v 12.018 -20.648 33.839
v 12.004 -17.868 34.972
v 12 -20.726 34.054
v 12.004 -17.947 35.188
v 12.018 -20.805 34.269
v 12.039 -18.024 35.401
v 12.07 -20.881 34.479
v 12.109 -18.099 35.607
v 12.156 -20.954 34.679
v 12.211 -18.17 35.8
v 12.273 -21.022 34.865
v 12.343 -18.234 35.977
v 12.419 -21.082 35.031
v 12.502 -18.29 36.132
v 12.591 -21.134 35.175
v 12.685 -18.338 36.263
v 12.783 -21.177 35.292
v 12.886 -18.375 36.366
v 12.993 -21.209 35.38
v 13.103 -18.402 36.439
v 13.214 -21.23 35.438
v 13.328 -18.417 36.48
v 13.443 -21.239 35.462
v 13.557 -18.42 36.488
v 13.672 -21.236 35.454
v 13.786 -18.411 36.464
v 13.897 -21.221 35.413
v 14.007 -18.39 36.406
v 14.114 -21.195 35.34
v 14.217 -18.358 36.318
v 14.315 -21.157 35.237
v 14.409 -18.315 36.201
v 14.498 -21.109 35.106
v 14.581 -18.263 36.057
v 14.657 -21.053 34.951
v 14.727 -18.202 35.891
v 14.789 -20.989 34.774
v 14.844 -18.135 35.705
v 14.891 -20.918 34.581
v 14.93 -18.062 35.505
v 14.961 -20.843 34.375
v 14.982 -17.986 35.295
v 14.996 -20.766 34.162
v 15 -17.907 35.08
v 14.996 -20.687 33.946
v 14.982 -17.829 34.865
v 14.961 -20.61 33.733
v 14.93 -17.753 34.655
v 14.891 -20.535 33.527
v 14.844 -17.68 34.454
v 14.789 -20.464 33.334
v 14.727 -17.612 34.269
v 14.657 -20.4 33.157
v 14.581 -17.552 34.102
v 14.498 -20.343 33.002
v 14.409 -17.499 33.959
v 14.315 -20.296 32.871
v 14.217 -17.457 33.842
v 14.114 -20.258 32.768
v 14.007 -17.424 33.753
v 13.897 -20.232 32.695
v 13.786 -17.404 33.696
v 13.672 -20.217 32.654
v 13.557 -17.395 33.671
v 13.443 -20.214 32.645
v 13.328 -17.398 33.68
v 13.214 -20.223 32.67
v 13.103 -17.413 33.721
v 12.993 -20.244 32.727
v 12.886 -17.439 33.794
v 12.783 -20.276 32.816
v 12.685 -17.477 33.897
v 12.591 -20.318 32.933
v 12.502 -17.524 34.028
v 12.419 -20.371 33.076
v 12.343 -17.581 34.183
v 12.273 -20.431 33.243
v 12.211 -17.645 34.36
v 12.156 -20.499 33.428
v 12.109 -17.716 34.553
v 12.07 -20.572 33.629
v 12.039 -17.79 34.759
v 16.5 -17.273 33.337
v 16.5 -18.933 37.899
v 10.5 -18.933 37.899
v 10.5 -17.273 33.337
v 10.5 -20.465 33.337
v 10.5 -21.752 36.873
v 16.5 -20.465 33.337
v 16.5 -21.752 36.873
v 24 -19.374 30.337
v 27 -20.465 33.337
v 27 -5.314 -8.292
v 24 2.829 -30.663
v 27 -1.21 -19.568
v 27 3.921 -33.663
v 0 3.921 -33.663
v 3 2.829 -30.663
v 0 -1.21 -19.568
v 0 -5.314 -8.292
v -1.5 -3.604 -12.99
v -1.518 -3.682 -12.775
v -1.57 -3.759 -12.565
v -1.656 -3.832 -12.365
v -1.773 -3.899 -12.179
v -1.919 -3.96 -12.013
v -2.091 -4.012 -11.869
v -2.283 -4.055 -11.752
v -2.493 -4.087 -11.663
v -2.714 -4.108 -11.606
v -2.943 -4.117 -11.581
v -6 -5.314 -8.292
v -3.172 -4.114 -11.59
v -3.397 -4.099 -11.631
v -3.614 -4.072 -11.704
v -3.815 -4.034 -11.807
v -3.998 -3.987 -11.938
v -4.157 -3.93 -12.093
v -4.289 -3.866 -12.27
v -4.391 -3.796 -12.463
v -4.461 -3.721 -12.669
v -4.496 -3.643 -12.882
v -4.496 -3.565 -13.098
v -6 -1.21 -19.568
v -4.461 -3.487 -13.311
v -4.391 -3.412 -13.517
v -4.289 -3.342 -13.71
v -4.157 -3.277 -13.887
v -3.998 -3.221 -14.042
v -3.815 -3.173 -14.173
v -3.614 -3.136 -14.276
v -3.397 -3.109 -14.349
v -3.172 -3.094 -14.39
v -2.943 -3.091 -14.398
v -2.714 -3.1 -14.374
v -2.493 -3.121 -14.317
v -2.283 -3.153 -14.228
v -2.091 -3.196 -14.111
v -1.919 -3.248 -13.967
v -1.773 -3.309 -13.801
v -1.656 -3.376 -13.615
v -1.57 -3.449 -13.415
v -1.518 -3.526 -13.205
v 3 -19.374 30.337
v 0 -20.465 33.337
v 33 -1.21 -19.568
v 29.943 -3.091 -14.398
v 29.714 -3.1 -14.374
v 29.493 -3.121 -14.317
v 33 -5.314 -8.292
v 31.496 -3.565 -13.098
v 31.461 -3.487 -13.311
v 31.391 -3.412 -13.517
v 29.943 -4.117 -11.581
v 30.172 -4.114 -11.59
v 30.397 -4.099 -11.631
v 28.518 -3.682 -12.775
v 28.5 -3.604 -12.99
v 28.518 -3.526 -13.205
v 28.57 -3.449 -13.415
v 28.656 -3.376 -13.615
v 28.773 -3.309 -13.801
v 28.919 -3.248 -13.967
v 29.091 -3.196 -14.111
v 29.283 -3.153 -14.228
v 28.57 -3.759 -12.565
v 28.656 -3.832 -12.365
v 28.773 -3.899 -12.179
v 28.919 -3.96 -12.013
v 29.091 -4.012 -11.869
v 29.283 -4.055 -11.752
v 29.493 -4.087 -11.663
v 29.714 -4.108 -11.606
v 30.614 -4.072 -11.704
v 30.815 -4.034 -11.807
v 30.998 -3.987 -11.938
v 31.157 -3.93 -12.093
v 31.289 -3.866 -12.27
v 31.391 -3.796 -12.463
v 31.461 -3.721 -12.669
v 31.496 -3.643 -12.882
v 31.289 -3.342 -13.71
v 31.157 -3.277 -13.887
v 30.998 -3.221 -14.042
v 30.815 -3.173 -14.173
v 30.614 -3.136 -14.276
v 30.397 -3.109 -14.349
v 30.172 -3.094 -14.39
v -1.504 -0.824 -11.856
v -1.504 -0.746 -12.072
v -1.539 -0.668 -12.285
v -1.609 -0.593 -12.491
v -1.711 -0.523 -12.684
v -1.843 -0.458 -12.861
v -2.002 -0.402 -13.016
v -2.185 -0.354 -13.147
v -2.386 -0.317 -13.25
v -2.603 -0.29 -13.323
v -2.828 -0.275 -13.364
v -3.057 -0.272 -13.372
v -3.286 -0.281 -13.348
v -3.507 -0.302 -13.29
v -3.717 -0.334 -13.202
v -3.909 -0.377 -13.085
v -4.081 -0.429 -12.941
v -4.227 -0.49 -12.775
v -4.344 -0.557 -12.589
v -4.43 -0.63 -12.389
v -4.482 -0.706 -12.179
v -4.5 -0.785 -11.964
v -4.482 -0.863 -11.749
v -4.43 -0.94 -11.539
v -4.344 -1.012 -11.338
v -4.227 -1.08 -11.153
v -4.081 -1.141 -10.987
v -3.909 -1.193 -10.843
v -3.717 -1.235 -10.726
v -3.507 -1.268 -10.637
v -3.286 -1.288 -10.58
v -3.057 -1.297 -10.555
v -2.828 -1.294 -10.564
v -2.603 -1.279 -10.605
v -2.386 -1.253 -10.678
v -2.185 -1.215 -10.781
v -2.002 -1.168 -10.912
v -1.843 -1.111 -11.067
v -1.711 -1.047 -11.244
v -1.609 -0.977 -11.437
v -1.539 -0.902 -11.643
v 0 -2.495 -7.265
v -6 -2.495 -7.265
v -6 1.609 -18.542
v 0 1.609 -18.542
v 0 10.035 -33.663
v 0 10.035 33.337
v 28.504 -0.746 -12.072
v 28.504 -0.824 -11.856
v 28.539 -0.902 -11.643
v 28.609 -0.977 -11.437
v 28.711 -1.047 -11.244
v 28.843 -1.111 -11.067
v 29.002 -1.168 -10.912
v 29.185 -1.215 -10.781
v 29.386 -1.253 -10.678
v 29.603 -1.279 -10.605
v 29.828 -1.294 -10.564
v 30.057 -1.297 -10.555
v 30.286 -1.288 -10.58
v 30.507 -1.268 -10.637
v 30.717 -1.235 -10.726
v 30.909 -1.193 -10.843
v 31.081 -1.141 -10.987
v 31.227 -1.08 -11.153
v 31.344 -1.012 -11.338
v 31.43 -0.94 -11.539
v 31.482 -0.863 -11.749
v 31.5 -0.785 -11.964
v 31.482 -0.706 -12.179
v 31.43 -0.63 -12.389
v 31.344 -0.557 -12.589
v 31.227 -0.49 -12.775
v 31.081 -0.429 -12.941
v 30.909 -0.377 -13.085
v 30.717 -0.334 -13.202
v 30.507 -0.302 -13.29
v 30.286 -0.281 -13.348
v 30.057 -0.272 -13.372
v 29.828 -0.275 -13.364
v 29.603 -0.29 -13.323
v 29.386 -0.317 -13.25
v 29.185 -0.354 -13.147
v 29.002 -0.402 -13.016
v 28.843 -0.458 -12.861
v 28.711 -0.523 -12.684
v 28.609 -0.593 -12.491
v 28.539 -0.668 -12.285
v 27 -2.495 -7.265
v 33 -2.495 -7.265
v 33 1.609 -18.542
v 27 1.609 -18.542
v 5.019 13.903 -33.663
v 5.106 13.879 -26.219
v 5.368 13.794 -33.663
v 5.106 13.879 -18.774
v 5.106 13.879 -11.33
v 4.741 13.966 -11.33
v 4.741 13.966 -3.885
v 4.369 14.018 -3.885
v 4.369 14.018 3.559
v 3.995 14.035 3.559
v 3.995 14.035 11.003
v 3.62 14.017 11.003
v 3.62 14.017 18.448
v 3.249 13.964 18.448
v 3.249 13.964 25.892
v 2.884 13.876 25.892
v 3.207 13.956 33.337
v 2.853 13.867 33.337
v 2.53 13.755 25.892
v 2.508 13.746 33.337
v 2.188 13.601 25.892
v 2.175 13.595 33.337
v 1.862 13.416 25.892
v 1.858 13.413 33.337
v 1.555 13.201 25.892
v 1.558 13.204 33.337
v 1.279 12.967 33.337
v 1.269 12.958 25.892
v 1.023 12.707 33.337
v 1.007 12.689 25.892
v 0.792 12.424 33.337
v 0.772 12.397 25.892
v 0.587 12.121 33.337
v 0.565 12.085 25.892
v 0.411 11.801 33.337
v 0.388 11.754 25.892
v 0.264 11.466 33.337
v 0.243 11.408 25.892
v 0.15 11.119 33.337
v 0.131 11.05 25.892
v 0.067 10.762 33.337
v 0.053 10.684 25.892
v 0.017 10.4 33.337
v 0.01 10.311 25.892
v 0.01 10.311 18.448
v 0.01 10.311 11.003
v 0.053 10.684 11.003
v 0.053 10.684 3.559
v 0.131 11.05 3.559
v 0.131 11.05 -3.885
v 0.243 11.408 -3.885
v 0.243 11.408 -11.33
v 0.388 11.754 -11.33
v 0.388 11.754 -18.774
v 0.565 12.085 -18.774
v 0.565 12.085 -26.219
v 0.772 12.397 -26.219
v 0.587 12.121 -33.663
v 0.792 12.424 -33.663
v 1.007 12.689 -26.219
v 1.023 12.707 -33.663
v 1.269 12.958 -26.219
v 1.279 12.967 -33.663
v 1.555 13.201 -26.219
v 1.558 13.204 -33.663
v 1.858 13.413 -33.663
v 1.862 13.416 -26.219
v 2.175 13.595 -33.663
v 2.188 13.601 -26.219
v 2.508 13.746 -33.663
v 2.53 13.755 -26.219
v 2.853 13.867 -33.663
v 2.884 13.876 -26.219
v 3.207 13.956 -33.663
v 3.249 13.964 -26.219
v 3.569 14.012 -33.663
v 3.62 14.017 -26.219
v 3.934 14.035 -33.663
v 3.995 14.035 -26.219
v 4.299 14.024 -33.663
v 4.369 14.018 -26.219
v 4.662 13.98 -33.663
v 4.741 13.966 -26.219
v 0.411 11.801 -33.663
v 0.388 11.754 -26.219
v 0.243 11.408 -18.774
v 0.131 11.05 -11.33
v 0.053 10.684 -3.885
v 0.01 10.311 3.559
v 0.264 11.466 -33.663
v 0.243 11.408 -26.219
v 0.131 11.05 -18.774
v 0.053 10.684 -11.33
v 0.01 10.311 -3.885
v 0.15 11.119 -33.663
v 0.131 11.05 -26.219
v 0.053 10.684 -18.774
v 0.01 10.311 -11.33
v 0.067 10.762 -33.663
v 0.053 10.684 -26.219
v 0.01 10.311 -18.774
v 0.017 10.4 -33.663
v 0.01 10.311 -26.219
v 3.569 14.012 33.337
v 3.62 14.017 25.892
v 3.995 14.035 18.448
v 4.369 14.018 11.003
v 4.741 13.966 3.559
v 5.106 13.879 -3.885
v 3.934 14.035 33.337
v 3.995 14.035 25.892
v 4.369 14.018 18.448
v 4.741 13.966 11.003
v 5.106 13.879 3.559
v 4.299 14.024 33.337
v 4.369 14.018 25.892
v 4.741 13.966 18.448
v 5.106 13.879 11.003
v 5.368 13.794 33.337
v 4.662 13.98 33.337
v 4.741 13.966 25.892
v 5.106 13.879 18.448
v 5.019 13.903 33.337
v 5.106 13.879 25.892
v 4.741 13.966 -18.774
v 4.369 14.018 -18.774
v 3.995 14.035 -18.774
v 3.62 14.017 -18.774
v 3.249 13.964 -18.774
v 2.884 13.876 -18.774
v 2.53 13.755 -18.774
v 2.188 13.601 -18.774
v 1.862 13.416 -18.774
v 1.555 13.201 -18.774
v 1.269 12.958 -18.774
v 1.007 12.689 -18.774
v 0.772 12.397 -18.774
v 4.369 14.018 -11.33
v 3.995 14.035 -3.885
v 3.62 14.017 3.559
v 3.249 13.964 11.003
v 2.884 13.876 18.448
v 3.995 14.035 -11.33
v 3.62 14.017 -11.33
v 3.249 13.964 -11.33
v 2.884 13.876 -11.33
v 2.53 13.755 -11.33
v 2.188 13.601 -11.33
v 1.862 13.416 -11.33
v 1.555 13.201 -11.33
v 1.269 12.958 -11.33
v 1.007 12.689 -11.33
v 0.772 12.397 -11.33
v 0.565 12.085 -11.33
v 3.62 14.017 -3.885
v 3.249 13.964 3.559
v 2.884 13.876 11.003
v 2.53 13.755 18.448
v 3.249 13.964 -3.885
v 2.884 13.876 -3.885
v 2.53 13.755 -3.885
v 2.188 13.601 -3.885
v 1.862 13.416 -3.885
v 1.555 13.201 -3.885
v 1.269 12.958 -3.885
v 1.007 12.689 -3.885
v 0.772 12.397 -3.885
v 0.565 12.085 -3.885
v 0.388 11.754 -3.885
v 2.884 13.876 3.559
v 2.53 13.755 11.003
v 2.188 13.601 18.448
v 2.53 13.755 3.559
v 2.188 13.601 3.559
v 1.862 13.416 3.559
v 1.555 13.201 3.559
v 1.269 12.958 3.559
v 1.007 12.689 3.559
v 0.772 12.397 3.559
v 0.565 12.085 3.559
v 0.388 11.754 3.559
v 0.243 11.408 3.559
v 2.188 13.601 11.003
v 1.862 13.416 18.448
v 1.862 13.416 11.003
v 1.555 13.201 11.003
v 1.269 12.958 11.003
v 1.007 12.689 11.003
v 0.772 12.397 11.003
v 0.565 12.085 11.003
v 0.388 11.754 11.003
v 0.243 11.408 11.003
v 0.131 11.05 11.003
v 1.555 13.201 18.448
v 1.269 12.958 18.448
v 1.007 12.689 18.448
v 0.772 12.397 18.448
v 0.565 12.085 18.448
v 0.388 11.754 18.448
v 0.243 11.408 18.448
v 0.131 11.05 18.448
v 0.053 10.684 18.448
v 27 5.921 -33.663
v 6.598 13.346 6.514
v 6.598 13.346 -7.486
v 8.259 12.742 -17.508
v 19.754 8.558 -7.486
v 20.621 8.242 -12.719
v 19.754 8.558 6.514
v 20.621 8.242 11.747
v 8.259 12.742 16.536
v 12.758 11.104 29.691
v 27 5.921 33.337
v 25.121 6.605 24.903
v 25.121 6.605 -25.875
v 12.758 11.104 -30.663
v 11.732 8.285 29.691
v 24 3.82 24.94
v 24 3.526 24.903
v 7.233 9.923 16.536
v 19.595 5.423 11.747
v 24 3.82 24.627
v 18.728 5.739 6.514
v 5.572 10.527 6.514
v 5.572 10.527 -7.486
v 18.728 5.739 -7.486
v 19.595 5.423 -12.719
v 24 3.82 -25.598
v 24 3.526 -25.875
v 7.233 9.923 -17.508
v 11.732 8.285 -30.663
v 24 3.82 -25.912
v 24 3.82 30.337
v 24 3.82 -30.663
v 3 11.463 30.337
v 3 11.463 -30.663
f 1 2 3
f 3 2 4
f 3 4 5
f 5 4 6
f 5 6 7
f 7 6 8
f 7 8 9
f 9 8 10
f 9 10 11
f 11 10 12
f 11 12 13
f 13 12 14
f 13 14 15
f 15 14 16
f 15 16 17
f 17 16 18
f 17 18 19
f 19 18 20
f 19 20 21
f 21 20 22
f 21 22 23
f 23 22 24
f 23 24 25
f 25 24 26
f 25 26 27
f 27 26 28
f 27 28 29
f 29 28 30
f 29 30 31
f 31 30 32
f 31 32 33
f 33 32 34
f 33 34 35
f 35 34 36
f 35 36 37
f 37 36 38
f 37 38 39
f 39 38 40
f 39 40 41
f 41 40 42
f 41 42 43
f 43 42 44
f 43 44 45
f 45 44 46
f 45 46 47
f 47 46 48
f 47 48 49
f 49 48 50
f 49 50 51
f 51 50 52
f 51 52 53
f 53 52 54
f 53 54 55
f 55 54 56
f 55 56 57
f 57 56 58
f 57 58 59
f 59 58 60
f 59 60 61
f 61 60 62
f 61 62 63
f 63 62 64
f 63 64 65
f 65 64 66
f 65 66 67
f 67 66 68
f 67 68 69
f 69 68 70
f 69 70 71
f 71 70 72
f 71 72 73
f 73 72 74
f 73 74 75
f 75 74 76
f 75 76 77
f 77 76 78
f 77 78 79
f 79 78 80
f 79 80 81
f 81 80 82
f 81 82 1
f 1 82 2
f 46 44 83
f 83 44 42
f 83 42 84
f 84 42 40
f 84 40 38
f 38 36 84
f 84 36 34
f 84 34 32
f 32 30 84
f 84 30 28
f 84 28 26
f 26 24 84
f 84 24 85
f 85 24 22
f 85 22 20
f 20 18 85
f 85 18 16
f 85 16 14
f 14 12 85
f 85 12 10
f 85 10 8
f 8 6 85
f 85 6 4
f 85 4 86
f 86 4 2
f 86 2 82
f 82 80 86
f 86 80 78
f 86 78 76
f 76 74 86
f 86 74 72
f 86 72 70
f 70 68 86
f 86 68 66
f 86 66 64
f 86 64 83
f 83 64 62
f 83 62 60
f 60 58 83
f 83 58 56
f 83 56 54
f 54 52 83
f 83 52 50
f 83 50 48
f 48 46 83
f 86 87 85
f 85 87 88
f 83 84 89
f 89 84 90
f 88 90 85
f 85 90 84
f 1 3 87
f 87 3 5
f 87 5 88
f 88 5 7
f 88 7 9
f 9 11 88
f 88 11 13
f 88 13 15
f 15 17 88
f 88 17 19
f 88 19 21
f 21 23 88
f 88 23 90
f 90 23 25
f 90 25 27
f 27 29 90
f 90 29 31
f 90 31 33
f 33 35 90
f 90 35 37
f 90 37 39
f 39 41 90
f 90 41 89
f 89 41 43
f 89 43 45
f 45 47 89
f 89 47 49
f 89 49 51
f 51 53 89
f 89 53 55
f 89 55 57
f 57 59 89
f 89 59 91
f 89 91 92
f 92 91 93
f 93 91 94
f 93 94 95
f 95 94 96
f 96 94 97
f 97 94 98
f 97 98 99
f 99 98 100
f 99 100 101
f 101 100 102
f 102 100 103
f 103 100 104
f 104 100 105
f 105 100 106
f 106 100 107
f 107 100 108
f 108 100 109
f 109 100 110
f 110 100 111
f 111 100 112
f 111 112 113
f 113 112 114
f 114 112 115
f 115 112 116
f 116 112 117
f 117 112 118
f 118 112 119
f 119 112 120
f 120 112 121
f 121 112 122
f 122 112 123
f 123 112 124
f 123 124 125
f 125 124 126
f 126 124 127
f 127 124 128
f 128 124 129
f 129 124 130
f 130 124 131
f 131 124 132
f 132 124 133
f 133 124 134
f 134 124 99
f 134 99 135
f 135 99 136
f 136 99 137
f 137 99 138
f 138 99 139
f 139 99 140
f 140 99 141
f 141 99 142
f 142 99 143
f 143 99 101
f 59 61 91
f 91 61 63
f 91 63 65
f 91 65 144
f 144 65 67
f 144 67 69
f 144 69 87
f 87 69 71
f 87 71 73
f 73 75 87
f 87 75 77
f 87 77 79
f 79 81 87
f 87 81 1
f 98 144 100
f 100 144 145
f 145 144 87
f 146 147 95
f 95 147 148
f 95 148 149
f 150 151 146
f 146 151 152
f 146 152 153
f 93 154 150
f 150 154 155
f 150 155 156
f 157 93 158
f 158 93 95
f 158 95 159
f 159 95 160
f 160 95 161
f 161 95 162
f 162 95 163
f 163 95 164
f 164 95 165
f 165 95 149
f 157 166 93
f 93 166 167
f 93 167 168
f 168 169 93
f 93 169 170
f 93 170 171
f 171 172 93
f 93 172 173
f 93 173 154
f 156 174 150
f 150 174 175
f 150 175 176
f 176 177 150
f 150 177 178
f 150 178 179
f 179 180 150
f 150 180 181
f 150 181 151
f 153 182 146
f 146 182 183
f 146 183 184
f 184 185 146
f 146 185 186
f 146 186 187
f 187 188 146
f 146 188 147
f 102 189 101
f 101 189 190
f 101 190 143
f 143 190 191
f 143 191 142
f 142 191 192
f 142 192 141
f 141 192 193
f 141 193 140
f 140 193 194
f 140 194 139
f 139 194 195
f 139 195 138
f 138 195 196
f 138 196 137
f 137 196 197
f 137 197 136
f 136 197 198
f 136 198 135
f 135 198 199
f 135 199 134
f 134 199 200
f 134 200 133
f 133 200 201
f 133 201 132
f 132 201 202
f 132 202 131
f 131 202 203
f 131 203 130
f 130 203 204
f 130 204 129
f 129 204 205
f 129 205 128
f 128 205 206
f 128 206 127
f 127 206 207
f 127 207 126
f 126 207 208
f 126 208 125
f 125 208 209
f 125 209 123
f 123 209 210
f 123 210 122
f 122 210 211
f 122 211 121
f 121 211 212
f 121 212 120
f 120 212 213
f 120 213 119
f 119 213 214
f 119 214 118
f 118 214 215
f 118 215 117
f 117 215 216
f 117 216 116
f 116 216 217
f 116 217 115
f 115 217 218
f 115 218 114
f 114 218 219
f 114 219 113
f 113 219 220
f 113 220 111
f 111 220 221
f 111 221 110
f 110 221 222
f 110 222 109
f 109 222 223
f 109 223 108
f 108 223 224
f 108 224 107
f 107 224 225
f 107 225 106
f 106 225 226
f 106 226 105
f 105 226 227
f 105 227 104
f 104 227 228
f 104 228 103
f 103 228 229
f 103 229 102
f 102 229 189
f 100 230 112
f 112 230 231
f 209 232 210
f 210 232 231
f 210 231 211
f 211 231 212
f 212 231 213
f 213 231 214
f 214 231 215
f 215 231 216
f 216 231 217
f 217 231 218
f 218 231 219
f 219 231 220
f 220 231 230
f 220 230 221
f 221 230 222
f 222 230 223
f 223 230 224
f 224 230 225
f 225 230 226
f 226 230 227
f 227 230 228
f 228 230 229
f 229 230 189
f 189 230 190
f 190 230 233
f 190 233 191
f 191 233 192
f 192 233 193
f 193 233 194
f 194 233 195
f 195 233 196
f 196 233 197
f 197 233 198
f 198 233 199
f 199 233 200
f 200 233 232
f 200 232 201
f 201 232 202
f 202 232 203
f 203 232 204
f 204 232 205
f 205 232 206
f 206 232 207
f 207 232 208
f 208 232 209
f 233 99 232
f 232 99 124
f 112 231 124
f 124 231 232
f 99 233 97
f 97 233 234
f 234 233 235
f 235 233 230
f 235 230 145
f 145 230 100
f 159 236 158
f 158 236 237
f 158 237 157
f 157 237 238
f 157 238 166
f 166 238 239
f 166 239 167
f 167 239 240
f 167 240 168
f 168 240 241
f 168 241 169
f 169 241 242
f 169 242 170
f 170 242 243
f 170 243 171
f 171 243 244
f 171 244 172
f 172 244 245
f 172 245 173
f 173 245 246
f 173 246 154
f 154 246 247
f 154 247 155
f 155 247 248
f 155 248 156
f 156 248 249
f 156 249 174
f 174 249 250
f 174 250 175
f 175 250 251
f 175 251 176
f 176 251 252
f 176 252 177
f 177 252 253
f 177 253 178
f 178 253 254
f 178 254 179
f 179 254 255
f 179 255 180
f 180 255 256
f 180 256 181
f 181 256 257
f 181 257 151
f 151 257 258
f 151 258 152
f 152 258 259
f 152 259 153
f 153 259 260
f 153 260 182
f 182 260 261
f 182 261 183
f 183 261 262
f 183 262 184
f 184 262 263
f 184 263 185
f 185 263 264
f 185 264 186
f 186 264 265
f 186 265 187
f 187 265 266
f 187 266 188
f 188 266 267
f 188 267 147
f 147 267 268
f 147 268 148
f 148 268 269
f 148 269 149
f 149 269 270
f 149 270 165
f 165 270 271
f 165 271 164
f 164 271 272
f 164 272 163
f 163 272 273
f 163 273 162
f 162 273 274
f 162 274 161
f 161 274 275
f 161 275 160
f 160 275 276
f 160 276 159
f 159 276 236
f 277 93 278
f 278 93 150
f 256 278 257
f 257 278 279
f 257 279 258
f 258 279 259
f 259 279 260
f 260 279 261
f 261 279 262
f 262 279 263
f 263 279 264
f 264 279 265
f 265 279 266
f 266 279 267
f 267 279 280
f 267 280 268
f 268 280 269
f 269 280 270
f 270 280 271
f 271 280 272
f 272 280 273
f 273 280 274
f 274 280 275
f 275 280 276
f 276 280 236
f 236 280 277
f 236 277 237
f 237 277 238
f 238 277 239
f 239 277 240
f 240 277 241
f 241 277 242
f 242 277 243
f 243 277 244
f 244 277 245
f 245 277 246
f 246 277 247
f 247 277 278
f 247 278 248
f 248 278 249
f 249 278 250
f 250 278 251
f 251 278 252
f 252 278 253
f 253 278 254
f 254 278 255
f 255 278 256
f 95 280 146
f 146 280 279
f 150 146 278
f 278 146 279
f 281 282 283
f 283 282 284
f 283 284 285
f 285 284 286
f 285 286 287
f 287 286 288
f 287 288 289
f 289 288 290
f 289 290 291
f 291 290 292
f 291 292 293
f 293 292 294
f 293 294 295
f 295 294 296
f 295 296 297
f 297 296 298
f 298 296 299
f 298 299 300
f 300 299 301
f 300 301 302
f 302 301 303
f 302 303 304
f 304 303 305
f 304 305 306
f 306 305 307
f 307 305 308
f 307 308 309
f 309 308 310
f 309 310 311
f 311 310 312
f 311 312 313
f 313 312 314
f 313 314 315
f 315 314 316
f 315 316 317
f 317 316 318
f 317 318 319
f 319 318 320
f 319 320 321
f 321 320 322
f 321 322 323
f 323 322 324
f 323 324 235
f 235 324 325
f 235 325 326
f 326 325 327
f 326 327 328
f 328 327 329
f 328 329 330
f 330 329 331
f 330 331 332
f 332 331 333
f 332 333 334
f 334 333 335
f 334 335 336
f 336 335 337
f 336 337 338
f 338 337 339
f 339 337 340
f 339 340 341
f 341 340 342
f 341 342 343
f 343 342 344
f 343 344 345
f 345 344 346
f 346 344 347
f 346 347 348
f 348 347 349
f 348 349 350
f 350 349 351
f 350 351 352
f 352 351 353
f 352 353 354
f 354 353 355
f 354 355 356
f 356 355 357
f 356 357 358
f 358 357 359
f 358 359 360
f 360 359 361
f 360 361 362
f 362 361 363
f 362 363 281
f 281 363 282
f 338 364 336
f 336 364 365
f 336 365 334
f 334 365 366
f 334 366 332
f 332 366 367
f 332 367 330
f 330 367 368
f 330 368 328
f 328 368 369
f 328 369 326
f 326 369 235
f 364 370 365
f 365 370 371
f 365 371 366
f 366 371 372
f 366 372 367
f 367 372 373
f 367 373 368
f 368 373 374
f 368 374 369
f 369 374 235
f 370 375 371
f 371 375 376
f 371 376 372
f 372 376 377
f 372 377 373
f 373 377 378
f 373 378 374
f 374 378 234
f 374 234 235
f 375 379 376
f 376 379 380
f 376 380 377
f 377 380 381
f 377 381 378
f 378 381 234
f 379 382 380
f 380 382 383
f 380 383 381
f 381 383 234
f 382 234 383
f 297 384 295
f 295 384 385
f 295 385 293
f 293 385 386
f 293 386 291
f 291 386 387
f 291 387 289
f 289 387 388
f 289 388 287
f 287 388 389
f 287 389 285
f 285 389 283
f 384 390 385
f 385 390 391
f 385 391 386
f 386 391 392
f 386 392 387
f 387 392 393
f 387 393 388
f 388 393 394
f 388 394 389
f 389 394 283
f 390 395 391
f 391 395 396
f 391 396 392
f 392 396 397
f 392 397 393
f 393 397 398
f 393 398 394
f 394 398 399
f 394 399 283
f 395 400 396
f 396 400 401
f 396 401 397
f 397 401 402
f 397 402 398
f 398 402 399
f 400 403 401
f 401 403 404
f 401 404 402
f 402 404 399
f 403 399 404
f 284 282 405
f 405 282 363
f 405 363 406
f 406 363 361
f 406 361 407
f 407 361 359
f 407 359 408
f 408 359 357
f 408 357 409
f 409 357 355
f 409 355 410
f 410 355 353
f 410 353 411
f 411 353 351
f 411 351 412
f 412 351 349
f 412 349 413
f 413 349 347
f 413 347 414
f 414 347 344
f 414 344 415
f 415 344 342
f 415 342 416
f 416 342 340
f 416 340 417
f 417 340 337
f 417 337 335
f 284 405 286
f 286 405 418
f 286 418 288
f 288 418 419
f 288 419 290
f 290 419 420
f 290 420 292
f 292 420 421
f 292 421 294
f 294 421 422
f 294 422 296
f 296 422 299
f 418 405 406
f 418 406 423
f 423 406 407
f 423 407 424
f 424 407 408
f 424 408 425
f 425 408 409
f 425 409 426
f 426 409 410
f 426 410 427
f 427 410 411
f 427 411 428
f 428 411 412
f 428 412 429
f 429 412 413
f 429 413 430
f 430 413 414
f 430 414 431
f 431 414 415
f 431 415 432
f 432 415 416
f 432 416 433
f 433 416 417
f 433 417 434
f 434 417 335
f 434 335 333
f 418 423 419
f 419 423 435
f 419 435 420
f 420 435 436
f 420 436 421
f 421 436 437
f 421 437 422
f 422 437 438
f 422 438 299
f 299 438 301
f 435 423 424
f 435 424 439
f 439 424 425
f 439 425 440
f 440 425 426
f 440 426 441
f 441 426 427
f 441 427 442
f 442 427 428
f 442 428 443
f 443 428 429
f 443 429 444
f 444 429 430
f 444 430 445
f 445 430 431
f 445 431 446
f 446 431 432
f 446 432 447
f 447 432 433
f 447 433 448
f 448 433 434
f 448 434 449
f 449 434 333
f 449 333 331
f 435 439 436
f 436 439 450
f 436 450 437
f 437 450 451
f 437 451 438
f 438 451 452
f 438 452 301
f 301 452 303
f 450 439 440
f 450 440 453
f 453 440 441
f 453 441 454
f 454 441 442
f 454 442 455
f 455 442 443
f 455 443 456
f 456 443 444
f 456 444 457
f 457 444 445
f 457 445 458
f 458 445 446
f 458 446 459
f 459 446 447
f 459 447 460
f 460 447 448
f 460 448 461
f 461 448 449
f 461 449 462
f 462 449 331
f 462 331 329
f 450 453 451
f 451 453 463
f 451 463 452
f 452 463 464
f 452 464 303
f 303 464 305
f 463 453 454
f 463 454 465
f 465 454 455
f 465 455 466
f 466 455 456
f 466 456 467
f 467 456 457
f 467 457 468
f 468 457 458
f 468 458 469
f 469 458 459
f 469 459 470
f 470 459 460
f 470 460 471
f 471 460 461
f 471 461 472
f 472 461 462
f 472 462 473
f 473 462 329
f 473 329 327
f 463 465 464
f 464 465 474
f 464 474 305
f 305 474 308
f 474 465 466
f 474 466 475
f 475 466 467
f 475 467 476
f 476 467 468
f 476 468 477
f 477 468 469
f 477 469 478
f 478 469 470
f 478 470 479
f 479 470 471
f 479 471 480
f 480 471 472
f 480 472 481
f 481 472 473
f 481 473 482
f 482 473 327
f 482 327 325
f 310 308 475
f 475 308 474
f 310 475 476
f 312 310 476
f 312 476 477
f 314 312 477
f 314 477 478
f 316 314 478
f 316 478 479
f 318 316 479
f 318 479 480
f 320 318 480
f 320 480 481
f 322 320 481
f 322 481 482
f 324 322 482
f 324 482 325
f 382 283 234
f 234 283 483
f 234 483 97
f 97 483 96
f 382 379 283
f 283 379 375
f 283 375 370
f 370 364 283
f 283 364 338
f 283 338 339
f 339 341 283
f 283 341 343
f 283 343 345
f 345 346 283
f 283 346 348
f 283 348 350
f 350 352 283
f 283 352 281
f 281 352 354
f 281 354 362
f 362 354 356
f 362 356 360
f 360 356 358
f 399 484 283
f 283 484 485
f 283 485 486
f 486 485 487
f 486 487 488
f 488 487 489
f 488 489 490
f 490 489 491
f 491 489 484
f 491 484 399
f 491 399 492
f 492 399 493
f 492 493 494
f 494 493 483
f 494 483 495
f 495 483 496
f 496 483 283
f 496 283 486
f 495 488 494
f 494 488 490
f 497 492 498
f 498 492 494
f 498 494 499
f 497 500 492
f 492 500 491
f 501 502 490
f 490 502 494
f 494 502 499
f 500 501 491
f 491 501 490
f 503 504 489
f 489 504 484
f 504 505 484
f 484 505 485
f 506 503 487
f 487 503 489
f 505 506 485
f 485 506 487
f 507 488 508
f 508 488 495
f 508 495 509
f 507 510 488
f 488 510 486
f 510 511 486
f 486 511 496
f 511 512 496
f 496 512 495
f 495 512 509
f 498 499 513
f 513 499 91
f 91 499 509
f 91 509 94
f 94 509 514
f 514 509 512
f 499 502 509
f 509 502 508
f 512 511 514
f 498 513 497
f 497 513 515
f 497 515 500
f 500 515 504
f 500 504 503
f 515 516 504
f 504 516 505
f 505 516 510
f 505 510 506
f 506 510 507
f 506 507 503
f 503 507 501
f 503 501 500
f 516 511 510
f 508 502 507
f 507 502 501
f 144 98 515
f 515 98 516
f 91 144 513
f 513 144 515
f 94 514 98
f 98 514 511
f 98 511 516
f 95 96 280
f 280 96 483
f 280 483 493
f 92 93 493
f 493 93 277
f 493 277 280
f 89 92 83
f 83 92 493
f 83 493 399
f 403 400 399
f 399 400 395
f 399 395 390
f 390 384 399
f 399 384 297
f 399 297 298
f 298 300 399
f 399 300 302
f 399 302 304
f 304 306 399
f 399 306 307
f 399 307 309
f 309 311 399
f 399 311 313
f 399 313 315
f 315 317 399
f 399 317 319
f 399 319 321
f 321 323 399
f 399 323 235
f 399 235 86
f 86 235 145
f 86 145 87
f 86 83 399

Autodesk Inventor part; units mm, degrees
ref_plane "YZ Plane" through (0, 0, 0) normal (1, 0, 0) x (0, 1, 0)
ref_plane "XZ Plane" through (0, 0, 0) normal (0, 1, 0) x (-1, 0, 0)
ref_plane "XY Plane" through (0, 0, 0) normal (0, 0, 1) x (1, 0, 0)
ref_plane "Work Plane1" through (0, -11.6382, 33.3368) normal (0, 0, 1) x (1, 0, 0)
sketch "Sketch7" plane through (0, -11.6382, 33.3368) normal (0, 0, 1) x (1, 0, 0)
  line L0 (0, 15.5588) -> (27, 15.5588)
  line L1 (27, 15.5588) -> (27, 17.5588)
  line L2 (27, 17.5588) -> (0, 27.386)
  line L3 (0, 27.386) -> (0, 15.5588)
  line L4 (0, 15.5588) -> (27, 15.5588)
  point P0 (0, 11.6382)
  dimension "d20" = 2
  dimension "d21" = 110
  dimension "d76" = 27
extrude "Extrusion5" add sketch "Sketch7" against normal blind 67
sketch "Sketch8" plane through (0, 3.9206, 33.3368) normal (-1, 0, 0) x (0, 0, 1)
  line L0 (0, 0) -> (-67, 0) projected
  line L1 (-67, 0) -> (0, -24.386)
  line L2 (0, -24.386) -> (0, 0)
  point P0 (-33.3368, -3.9206)
  dimension "d27" = 20
extrude "Extrusion6" add sketch "Sketch8" against normal up to surface (27 mm away)
shell "Shell3" thickness 3 removed faces 1 at (9, -4.2081, -11.3299)
sketch "Sketch9" plane through (27, 5.9206, 33.3368) normal (0.3420201, 0.9396926, 0) x (0.9396926, -0.3420201, 0)
  line L0 (-21.711, 26.8228) -> (-7.711, 26.8228)
  line L1 (-7.711, 26.8228) -> (-7.711, 40.8228)
  line L2 (-7.711, 40.8228) -> (-21.711, 40.8228)
  line L3 (-21.711, 40.8228) -> (-21.711, 26.8228)
  line L4 (-7.711, 33.8228) -> (47.289, 33.8228) construction
  line L5 (-15.1557, 3.6455) -> (-2, 8.4338)
  line L6 (-2, 8.4338) -> (-6.7883, 21.5895)
  line L7 (-6.7883, 21.5895) -> (-19.944, 16.8012)
  line L8 (-19.944, 16.8012) -> (-15.1557, 3.6455)
  line L9 (-19.944, 50.8443) -> (-6.7883, 46.056)
  line L10 (-6.7883, 46.056) -> (-2, 59.2117)
  line L11 (-2, 59.2117) -> (-15.1557, 64)
  line L12 (-15.1557, 64) -> (-19.944, 50.8443)
  line L13 (0, 0) -> (0, 67) projected
  line L14 (-28.7328, 67) -> (0, 67) projected
  point P0 (-4.3941, 15.0117)
  point P1 (-4.3941, 52.6339)
  dimension "d31" = 14
  dimension "d32" = 55
  dimension "d35" = 20
  dimension "d39" = 20
  dimension "d41" = 2
  dimension "d42" = 3
extrude "Extrusion7" cut sketch "Sketch9" against normal up to next
fillet "Fillet1" radius 4 1 edges at (0, 15.7478, -0.1632)
sketch "Sketch10" plane through (27, 5.9206, 33.3368) normal (1, 0, 0) x (0, 0, -1)
  line L0 (0, -26.386) -> (67, -2) projected
  line L1 (41.6283, -11.2345) -> (40.6022, -8.4155)
  line L2 (40.6022, -8.4155) -> (51.8786, -4.3112)
  line L3 (51.8786, -4.3112) -> (52.9046, -7.1303)
  point P0 (33.3368, -5.9206)
  dimension "d46" = 3
  dimension "d47" = 12
  dimension "d48" = 15
ref_plane "Work Plane2" through (13.5, 5.9206, 33.3368) normal (1, 0, 0) x (0, 0, -1)
extrude "Extrusion8" add sketch "Sketch10" along normal blind 6
sketch "Sketch11" plane through (27, -2.4949, -7.2655) normal (0, 0.9396926, 0.3420201) x (1, 0, 0)
  line L0 (0, 0) -> (6, 0) projected
  line L1 (6, 12) -> (6, 0) projected
  point P0 (-27, -5.974)
  point P1 (3, 5)
  dimension "d52" = 5
  dimension "d53" = 3
hole "Hole1" at (30, -0.7848, -11.9639) direction (0, -0.9396926, -0.3420201) diameter 3 end through all
mirror "Mirror2" about plane through (13.5, 5.9206, 33.3368) normal (1, 0, 0) of "Extrusion8", "Hole1"
sketch "Sketch12" plane through (0, 3.9206, -33.6632) normal (0, -0.9396926, -0.3420201) x (1, 0, 0)
  line L0 (3, 68.1074) -> (24, 68.1074) projected
  line L1 (10.5, 68.1074) -> (16.5, 68.1074)
  line L2 (16.5, 68.1074) -> (16.5, 75.063)
  line L3 (16.5, 75.063) -> (10.5, 75.063)
  line L4 (10.5, 75.063) -> (10.5, 68.1074)
  line L5 (27, 0) -> (0, 0) projected
  line L6 (27, 71.2999) -> (27, 27) projected
  point P0 (0, 32.974)
  dimension "d61" = 75.063
  dimension "d62" = 6
  dimension "d64" = 10.5
extrude "Extrusion9" add sketch "Sketch12" against normal blind 3
sketch "Sketch13" plane through (0, 6.7397, -32.6372) normal (0, 0.9396926, 0.3420201) x (1, 0, 0)
  line L0 (10.5, -75.063) -> (16.5, -75.063) projected
  line L1 (16.5, -75.063) -> (16.5, -70.208) projected
  point P0 (0, -32.974)
  point P1 (13.5, -72.063)
  dimension "d67" = 3
  dimension "d68" = 3
hole "Hole2" at (13.5, -17.9073, 35.0799) direction (0, -0.9396926, -0.3420201) diameter 3 end through all
properties part number "k2_t_l1a"
